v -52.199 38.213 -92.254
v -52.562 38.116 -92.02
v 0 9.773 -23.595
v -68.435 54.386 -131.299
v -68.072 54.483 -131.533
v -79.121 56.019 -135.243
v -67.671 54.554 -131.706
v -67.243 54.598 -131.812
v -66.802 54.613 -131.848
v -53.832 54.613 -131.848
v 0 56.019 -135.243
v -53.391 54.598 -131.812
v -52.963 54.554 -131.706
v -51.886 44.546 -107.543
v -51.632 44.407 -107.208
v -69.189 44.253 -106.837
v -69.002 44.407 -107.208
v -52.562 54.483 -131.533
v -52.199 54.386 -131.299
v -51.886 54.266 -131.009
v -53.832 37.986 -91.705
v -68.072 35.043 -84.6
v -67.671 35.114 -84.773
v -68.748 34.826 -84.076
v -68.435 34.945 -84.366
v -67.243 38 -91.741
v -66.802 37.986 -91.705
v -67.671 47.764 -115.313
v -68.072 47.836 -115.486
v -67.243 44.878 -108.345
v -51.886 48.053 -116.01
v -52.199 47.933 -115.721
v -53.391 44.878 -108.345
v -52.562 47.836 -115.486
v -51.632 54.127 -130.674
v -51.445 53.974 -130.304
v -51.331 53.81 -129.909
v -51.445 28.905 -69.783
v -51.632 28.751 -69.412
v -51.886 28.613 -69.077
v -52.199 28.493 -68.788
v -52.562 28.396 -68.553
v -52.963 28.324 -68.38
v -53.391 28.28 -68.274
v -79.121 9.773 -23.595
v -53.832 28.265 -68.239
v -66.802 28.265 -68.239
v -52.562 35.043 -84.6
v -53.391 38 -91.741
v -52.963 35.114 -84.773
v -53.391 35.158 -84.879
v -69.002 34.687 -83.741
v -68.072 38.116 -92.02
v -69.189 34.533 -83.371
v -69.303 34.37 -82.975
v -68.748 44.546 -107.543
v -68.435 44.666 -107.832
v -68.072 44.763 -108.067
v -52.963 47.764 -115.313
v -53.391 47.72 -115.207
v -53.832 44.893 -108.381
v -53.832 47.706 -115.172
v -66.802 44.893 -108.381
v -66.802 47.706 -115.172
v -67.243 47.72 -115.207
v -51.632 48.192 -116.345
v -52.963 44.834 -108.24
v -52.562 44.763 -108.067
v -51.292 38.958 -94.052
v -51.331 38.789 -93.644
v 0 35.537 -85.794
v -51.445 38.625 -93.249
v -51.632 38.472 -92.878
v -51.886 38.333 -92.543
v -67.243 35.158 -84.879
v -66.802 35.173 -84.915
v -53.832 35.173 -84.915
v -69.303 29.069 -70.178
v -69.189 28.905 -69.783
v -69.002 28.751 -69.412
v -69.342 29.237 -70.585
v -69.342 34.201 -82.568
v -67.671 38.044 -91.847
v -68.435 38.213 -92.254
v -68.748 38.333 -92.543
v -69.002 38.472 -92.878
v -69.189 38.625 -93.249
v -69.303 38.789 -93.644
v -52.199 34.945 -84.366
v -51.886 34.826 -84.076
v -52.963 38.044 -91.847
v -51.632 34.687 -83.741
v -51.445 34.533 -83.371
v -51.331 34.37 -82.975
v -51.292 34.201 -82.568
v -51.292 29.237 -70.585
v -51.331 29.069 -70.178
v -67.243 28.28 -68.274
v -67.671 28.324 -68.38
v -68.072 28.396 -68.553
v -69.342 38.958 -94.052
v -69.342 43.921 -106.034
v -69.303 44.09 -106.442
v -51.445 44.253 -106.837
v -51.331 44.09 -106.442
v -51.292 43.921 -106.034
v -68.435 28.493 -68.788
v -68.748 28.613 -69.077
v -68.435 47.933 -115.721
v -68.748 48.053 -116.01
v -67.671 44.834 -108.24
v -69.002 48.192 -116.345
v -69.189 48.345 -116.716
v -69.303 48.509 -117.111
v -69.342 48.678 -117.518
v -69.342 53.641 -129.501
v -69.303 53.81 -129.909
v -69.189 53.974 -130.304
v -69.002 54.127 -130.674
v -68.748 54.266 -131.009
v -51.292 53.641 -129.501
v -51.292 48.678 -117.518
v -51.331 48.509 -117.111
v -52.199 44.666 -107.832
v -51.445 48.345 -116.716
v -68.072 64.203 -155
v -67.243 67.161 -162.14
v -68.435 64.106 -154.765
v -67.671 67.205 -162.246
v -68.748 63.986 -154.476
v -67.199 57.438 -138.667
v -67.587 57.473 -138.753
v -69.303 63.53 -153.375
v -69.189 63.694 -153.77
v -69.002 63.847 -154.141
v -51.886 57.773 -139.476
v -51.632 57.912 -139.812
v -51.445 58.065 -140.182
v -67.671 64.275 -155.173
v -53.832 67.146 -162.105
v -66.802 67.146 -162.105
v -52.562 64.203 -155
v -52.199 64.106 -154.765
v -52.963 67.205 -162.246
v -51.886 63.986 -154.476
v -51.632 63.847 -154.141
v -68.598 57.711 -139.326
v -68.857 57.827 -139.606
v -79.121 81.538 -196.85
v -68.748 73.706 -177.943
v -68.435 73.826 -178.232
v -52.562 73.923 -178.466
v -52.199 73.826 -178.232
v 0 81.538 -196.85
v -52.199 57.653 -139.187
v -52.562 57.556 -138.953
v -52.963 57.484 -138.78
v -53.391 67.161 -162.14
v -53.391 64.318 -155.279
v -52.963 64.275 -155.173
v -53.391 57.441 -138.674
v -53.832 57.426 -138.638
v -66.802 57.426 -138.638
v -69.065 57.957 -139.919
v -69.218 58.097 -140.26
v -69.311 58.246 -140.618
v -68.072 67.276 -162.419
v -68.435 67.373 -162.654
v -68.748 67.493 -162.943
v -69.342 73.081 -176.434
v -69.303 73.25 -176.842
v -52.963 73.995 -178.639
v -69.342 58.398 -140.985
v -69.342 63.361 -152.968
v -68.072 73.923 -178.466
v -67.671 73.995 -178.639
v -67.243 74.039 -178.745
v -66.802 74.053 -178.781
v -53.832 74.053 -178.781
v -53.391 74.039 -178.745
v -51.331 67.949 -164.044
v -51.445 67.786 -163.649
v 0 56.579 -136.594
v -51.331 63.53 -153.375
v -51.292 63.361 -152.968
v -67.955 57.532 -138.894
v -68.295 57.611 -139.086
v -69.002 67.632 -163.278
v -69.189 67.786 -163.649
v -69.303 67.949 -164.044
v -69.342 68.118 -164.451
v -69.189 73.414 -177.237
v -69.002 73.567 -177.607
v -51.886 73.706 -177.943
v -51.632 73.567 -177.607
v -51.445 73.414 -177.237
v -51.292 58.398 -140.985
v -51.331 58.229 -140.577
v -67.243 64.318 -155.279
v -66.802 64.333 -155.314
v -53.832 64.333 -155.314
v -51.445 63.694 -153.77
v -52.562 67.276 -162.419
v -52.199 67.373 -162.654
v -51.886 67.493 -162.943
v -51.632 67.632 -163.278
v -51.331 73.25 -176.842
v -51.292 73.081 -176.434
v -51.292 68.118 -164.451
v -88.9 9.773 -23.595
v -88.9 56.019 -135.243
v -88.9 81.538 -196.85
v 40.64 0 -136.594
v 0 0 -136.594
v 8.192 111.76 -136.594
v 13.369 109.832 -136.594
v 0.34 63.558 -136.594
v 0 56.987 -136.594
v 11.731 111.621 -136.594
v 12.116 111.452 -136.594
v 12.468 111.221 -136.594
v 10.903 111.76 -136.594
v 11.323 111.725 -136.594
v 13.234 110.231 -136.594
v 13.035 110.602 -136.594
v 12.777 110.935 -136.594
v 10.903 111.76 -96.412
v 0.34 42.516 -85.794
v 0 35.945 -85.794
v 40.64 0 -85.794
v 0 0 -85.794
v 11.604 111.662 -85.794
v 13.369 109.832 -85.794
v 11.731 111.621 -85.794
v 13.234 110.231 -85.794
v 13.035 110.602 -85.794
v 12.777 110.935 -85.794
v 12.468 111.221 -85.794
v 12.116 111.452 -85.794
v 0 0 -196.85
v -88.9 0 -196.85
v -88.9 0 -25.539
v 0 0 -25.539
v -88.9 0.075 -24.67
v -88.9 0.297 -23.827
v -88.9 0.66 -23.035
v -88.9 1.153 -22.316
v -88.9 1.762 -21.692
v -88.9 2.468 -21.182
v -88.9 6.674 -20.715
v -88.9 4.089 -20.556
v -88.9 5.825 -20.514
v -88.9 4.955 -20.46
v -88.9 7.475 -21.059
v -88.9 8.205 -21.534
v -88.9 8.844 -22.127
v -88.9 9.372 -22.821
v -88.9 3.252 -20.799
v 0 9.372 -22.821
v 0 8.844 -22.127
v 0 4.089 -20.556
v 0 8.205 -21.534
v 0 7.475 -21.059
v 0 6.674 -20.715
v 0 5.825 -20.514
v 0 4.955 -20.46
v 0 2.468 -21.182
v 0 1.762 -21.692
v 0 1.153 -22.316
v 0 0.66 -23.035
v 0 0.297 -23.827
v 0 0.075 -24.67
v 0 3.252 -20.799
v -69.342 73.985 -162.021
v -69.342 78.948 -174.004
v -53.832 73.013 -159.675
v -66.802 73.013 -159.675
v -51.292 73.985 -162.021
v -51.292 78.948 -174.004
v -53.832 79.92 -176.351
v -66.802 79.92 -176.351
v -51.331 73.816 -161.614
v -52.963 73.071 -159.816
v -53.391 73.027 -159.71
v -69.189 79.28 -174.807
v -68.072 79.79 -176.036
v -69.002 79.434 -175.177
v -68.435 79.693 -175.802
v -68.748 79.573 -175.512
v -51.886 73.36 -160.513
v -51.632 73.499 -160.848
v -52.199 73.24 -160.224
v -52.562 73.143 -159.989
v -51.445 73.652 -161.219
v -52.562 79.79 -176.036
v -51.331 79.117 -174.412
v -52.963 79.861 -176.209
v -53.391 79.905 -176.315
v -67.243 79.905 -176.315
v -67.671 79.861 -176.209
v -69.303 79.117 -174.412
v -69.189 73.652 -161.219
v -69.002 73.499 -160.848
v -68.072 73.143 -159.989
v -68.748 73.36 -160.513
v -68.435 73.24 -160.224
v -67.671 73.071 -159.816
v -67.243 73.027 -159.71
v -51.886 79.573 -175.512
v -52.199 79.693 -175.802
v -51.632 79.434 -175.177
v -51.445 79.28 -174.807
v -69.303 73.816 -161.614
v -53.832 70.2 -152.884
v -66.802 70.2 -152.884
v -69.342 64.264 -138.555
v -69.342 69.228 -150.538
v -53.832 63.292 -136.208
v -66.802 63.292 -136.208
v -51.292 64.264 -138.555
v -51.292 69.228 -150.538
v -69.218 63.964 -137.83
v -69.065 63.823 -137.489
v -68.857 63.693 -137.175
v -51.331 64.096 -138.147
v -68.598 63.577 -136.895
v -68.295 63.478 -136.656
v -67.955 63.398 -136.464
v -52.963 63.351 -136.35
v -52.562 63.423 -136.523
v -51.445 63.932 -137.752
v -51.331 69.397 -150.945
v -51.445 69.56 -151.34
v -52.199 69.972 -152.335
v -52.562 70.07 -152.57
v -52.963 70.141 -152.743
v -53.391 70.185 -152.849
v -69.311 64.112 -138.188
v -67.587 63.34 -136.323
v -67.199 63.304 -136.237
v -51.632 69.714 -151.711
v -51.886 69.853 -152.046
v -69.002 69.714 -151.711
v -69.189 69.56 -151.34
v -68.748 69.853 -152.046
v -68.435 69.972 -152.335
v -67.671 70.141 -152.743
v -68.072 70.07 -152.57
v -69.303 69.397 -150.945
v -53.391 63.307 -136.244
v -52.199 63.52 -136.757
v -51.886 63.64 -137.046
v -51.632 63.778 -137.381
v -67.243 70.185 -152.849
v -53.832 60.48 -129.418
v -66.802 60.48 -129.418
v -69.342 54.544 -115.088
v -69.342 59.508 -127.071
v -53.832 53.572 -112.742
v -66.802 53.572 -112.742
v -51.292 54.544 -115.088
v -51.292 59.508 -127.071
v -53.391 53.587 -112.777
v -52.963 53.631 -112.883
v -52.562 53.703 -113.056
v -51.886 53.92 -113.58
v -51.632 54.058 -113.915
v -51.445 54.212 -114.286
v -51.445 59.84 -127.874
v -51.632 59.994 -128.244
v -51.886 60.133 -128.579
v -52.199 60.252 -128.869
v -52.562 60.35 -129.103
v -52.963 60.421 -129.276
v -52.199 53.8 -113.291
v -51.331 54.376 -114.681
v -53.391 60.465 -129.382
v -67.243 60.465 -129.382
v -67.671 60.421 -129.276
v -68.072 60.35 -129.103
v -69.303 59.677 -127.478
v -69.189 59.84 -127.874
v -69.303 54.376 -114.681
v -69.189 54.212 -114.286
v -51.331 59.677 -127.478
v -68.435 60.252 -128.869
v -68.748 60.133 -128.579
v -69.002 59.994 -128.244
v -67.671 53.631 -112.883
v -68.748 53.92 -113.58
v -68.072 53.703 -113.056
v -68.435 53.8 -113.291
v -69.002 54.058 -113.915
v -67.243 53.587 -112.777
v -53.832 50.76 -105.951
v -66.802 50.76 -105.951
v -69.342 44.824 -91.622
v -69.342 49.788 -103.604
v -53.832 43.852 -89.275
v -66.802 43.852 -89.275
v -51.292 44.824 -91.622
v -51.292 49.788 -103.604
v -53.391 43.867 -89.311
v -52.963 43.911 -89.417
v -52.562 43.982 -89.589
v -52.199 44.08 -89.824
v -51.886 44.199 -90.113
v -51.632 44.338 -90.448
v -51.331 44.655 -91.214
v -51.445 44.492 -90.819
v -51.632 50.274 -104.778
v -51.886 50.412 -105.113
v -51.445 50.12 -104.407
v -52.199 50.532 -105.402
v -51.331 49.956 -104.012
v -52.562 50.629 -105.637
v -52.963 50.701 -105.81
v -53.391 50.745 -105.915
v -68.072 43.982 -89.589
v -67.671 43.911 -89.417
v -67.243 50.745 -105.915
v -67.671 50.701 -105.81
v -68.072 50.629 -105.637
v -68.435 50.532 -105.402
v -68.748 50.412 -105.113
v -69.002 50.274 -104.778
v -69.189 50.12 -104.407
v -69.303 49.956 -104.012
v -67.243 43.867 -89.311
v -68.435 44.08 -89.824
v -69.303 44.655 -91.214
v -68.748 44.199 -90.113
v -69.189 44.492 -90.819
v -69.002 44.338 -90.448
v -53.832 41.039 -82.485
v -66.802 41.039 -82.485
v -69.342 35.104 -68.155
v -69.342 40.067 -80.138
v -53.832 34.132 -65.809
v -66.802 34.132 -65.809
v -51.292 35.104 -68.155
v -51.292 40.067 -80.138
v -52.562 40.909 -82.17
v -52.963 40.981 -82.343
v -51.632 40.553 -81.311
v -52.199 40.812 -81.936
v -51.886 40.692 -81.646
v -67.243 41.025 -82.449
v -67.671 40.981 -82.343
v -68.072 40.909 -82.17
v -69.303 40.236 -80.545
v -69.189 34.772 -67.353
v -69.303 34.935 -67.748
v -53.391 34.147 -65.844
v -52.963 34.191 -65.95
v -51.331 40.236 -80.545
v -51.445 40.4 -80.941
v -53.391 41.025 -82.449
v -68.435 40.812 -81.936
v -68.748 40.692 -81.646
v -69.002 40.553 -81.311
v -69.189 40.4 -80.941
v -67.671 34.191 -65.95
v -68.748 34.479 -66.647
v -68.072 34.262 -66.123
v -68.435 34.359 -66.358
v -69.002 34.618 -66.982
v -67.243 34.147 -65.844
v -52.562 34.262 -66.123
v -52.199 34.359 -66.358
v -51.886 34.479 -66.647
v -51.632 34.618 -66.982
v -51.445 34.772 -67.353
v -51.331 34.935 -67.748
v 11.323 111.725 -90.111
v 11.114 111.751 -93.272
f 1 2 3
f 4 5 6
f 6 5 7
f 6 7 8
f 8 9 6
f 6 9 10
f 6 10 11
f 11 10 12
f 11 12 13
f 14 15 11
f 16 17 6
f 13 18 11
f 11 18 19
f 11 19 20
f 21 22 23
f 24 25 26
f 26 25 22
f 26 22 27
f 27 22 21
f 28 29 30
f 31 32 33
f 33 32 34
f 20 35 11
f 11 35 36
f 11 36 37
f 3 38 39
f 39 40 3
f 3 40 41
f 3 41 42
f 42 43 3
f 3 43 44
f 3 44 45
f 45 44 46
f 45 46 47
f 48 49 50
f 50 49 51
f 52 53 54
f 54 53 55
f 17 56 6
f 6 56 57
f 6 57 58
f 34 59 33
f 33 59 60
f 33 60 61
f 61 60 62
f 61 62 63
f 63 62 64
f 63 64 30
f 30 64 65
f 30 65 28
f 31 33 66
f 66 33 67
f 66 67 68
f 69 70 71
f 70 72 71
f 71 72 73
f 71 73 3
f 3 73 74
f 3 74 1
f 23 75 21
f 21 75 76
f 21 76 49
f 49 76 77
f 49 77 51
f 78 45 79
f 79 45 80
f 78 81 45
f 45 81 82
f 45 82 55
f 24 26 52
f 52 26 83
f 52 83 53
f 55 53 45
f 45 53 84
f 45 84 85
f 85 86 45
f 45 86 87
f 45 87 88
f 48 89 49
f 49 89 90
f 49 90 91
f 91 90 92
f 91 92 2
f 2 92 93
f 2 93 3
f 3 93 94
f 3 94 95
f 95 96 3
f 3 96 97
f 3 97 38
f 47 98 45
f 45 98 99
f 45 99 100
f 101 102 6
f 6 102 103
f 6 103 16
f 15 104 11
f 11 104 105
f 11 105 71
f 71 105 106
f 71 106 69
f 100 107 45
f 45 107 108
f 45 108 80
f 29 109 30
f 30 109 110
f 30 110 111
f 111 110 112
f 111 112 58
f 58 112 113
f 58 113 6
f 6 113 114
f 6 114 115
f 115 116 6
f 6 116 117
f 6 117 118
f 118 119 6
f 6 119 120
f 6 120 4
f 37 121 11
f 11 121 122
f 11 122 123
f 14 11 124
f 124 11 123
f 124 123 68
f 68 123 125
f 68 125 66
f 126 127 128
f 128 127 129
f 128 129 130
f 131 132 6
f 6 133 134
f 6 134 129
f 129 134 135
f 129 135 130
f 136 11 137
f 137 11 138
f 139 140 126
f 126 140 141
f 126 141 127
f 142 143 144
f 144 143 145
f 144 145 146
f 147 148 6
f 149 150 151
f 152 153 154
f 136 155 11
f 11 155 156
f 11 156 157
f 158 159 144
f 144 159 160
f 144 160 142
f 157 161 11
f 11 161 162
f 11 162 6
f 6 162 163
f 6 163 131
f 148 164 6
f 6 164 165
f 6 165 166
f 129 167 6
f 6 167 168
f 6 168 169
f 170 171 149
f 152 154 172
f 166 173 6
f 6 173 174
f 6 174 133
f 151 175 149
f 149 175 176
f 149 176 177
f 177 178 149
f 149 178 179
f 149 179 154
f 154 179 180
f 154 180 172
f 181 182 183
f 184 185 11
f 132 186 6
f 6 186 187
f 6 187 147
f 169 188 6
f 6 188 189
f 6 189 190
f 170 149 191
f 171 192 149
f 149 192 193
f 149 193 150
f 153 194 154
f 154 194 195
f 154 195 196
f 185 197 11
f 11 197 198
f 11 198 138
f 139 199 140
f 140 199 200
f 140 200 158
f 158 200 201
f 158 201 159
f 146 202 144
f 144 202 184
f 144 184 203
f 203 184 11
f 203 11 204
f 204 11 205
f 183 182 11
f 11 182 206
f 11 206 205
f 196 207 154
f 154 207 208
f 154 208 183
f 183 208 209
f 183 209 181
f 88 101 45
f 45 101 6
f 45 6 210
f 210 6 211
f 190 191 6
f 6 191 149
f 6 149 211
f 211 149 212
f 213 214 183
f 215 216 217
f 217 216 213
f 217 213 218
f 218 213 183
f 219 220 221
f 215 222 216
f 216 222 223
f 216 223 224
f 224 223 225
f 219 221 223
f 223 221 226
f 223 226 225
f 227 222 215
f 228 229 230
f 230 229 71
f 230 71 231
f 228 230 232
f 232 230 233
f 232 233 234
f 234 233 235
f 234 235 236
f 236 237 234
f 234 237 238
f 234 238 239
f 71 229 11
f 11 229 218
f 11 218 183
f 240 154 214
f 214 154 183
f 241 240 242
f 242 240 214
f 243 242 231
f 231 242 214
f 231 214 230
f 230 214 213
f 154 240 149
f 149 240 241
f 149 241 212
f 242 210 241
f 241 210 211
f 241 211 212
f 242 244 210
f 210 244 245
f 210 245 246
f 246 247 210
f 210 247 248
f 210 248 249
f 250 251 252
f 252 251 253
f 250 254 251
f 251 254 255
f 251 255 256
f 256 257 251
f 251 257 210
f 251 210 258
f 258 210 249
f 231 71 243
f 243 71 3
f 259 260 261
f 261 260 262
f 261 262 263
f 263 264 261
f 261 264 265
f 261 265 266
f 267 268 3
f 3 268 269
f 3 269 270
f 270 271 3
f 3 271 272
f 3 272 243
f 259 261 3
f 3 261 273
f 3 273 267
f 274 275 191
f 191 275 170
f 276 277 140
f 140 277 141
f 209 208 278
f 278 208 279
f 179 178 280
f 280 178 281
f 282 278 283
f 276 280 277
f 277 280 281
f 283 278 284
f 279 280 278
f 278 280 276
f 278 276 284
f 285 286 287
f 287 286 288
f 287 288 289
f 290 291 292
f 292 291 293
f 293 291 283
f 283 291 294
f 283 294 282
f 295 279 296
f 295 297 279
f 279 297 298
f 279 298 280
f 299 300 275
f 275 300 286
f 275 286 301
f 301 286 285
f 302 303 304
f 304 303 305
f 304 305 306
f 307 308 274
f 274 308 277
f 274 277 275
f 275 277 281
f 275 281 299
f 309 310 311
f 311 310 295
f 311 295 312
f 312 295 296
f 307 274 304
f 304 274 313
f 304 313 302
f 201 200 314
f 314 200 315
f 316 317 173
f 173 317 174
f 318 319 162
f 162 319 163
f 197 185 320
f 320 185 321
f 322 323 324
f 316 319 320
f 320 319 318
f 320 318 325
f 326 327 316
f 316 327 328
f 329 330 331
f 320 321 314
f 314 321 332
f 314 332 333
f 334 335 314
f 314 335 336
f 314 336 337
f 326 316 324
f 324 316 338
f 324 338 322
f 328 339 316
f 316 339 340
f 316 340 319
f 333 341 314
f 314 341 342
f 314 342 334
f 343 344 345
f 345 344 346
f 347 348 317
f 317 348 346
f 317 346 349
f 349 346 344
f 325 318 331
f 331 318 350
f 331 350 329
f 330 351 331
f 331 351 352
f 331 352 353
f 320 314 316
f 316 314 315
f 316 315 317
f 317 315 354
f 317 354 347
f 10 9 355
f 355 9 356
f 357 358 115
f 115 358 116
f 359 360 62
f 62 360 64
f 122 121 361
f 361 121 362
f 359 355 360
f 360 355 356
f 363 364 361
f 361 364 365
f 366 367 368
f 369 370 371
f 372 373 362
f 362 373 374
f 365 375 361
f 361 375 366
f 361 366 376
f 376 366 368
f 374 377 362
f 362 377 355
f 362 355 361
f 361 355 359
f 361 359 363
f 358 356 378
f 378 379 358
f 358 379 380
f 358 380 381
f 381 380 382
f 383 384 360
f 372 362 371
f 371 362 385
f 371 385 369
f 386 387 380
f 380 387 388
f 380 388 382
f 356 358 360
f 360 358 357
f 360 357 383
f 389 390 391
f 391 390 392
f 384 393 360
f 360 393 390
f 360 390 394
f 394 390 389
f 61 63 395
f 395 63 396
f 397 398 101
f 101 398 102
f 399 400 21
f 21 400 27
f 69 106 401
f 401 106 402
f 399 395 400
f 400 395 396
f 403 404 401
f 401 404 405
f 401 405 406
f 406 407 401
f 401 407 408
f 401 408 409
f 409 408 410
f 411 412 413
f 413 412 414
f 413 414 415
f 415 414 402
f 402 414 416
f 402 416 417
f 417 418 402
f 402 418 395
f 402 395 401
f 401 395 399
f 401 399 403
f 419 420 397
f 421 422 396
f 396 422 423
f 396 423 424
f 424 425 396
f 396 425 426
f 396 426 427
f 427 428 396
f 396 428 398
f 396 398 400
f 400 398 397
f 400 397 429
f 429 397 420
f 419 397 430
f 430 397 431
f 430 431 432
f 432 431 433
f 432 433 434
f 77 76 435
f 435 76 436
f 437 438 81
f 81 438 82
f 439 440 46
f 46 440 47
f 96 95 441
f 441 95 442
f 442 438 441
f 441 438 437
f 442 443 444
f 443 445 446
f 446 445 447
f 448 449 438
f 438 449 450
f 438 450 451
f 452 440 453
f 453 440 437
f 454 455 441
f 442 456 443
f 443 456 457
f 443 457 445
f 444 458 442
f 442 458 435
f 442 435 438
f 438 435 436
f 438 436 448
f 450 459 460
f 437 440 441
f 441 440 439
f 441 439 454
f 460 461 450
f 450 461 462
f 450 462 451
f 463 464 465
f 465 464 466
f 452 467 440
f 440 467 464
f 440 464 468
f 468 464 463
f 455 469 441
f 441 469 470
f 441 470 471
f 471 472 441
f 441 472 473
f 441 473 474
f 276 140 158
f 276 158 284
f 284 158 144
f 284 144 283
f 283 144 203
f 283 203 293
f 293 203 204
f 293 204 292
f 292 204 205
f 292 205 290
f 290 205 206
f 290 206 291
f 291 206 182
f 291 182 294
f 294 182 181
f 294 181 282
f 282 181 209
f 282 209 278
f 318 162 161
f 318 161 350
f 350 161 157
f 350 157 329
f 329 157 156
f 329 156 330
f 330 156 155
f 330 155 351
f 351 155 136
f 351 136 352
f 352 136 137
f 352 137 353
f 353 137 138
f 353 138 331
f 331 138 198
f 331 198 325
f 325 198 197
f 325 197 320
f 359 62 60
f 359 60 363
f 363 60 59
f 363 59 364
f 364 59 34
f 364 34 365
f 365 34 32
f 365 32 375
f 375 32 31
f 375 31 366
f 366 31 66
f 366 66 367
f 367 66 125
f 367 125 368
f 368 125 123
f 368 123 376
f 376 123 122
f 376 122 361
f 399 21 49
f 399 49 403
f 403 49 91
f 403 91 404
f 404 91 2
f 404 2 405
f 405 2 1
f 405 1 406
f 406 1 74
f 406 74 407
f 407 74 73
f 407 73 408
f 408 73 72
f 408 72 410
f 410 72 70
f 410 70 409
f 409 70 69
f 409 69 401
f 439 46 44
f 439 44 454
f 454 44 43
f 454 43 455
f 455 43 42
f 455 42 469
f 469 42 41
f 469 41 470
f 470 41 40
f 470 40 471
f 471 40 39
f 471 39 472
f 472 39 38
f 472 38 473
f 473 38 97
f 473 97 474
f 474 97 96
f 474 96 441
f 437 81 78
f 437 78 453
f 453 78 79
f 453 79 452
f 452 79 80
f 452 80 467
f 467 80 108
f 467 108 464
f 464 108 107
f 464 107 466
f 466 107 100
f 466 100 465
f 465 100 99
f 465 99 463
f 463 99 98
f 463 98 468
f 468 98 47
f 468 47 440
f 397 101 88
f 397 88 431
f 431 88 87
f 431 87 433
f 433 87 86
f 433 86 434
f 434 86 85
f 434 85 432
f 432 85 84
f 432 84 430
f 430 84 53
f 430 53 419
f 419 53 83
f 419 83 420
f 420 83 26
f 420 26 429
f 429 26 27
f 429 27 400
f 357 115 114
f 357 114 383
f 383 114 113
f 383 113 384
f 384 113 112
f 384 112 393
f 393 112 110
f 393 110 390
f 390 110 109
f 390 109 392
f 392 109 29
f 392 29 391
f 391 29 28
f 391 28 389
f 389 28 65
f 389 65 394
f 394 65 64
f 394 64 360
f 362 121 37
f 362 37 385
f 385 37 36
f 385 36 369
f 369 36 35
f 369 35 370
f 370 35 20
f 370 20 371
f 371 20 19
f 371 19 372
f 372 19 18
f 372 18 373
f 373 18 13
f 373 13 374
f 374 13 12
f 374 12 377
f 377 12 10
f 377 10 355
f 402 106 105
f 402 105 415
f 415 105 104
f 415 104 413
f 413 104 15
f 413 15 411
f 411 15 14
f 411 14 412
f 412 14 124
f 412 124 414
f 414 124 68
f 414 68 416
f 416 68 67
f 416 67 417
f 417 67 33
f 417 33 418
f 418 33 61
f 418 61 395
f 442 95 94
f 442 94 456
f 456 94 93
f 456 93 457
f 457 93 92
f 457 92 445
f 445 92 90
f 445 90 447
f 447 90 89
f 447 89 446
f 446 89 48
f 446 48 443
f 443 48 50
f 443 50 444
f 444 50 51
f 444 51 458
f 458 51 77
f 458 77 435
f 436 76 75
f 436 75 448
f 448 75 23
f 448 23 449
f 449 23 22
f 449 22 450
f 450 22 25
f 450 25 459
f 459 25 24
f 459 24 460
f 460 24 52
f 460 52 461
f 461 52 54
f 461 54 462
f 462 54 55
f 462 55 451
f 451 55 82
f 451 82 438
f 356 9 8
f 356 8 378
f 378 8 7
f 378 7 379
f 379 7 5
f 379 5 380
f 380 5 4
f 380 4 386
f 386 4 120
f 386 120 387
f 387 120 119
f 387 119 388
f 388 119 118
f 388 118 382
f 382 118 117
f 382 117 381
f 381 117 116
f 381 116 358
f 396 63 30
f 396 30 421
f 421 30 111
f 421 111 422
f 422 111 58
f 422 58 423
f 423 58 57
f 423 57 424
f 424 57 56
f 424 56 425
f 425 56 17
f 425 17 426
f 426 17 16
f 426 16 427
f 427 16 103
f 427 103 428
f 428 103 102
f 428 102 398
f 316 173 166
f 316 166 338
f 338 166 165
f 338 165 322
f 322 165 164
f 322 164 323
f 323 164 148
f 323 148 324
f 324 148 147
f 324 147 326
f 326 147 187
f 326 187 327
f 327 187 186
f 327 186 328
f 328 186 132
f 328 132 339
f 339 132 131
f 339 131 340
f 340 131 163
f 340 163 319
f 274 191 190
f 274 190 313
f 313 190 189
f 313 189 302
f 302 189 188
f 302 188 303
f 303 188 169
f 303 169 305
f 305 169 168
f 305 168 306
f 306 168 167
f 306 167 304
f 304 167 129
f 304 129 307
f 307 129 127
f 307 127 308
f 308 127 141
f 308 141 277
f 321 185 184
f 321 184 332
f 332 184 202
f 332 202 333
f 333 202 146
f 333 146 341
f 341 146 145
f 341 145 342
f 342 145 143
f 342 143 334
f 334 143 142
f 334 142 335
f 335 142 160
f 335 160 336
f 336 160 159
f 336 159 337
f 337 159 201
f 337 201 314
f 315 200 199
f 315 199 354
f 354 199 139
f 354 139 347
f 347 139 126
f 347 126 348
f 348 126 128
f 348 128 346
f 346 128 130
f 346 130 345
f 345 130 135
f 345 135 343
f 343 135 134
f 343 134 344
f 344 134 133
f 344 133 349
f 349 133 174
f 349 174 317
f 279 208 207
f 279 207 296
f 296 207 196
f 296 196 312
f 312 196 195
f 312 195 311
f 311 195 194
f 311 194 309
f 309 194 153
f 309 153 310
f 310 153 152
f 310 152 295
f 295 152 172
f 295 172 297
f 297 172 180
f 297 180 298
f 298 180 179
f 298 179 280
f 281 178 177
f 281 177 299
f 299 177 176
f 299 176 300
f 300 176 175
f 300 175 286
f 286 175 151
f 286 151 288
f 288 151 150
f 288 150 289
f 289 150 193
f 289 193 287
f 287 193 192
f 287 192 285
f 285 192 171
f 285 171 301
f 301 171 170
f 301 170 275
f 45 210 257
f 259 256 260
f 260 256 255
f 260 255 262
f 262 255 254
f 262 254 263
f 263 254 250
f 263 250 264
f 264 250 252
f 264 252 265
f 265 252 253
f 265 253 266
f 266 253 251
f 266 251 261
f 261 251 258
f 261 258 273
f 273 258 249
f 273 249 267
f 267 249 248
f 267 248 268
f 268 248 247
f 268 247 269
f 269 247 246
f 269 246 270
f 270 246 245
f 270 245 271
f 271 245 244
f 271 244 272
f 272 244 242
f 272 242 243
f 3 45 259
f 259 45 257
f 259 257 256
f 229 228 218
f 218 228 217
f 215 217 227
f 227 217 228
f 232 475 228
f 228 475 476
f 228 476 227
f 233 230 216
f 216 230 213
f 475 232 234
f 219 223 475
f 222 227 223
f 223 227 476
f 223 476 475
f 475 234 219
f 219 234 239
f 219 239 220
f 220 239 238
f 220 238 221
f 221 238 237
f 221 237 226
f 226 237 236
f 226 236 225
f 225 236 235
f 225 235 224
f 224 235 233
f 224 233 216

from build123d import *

# Parameters (mm, degrees)
BOSS_EXTRUDE1_DEPTH = 88.9
SKETCH3_W           = 18.049999968
SKETCH3_H           = 18.049999968
BOSS_EXTRUDE2_DEPTH = 6.35
FILLET1_R           = 2.54
FILLET2_R           = 5.08
BOSS_EXTRUDE3_DEPTH = 40.64
CAVITY1_START       = 93.019234599
CAVITY1_DEPTH       = 75.946275307
CUT_EXTRUDE1_DEPTH  = 181.905623168
FILLET3_R           = 2.54


# Read off the part's stored shape, not the designer's step: Cavity1
with BuildPart() as part:
    # Sketch2 → Boss-Extrude1 (new body)
    with BuildSketch(Plane(origin=(0, 0, 0), x_dir=(0, 0, -1), z_dir=(1, 0, 0))):
        Polygon((0, 0), (196.85, 81.537939753), (196.85, 0), align=None)
    extrude(amount=-BOSS_EXTRUDE1_DEPTH)

    # Sketch3 → Boss-Extrude2 (add)
    with BuildSketch(Plane(origin=(0, 0, 0), x_dir=(1, 0, 0), z_dir=(0, 0.9238795325112891, 0.3826834323650843))):
        with Locations((-60.317000016, 184.485904644)):
            Rectangle(SKETCH3_W, SKETCH3_H)
        with Locations((-60.317000016, 159.085904644)):
            Rectangle(SKETCH3_W, SKETCH3_H)
        with Locations((-60.317000016, 133.685904644)):
            Rectangle(SKETCH3_W, SKETCH3_H)
        with Locations((-60.317000016, 108.285904644)):
            Rectangle(SKETCH3_W, SKETCH3_H)
        with Locations((-60.317000016, 82.885904644)):
            Rectangle(SKETCH3_W, SKETCH3_H)
    extrude(amount=BOSS_EXTRUDE2_DEPTH)

    # Fillet1
    fillet1_edges = [part.edges().sort_by_distance(p)[0] for p in [
        (-69.342, 76.986734699, -177.565744205),
        (-69.342, 70.079298757, -160.889718673),
        (-51.292000032, 70.079298757, -160.889718673),
        (-51.292000032, 76.986734699, -177.565744205),
        (-51.292000032, 67.266575517, -154.09920408),
        (-69.342, 67.266575517, -154.09920408),
        (-69.342, 60.359139575, -137.423178547),
        (-51.292000032, 60.359139575, -137.423178547),
        (-51.292000032, 57.546416335, -130.632663954),
        (-69.342, 57.546416335, -130.632663954),
        (-69.342, 50.638980393, -113.956638422),
        (-51.292000032, 50.638980393, -113.956638422),
        (-51.292000032, 47.826257152, -107.166123828),
        (-69.342, 47.826257152, -107.166123828),
        (-69.342, 40.918821211, -90.490098296),
        (-51.292000032, 40.918821211, -90.490098296),
        (-51.292000032, 38.10609797, -83.699583702),
        (-69.342, 38.10609797, -83.699583702),
        (-69.342, 31.198662028, -67.02355817),
        (-51.292000032, 31.198662028, -67.02355817),
    ]]
    fillet(fillet1_edges, radius=FILLET1_R)

    # Fillet2
    fillet2_edges = [part.edges().sort_by_distance(p)[0] for p in [
        (-44.45, 0, 0),
    ]]
    fillet(fillet2_edges, radius=FILLET2_R)

    # Sketch4 → Boss-Extrude3 (add)
    with BuildSketch(Plane(origin=(0, 0, 0), x_dir=(0, 0, -1), z_dir=(1, 0, 0))):
        Polygon((111.19444231, 0), (85.79444231, 0), (85.79444231, 111.76), (136.59444231, 111.76), (136.59444231, 0), align=None)
    extrude(amount=BOSS_EXTRUDE3_DEPTH)

    # Cavity1 outline → Cavity1 (cut)
    with BuildSketch(Plane(origin=(0, 0, 0), x_dir=(1, 0, 0), z_dir=(0, 0.38268343236508323, -0.9238795325112895)).offset(CAVITY1_START)):
        Polygon((0.339752359, -6.447958985), (0, -0.376615902), (0, -72), (11.89834583, -72), (11.619866439, -70.420664892), align=None)
    extrude(amount=CAVITY1_DEPTH, mode=Mode.SUBTRACT)

    # Sketch8 → Cut-Extrude1 (cut, through all)
    with BuildSketch(Plane.XY.offset(-85.79444231)):
        Polygon((12.889866439, 111.76), (40.64, 0), (40.64, 111.76), align=None)
    extrude(amount=-CUT_EXTRUDE1_DEPTH, mode=Mode.SUBTRACT)

    # Fillet3
    fillet3_edges = [part.edges().sort_by_distance(p)[0] for p in [
        (12.889866439, 111.76, -111.19444231),
    ]]
    fillet(fillet3_edges, radius=FILLET3_R)


solid = part.part
